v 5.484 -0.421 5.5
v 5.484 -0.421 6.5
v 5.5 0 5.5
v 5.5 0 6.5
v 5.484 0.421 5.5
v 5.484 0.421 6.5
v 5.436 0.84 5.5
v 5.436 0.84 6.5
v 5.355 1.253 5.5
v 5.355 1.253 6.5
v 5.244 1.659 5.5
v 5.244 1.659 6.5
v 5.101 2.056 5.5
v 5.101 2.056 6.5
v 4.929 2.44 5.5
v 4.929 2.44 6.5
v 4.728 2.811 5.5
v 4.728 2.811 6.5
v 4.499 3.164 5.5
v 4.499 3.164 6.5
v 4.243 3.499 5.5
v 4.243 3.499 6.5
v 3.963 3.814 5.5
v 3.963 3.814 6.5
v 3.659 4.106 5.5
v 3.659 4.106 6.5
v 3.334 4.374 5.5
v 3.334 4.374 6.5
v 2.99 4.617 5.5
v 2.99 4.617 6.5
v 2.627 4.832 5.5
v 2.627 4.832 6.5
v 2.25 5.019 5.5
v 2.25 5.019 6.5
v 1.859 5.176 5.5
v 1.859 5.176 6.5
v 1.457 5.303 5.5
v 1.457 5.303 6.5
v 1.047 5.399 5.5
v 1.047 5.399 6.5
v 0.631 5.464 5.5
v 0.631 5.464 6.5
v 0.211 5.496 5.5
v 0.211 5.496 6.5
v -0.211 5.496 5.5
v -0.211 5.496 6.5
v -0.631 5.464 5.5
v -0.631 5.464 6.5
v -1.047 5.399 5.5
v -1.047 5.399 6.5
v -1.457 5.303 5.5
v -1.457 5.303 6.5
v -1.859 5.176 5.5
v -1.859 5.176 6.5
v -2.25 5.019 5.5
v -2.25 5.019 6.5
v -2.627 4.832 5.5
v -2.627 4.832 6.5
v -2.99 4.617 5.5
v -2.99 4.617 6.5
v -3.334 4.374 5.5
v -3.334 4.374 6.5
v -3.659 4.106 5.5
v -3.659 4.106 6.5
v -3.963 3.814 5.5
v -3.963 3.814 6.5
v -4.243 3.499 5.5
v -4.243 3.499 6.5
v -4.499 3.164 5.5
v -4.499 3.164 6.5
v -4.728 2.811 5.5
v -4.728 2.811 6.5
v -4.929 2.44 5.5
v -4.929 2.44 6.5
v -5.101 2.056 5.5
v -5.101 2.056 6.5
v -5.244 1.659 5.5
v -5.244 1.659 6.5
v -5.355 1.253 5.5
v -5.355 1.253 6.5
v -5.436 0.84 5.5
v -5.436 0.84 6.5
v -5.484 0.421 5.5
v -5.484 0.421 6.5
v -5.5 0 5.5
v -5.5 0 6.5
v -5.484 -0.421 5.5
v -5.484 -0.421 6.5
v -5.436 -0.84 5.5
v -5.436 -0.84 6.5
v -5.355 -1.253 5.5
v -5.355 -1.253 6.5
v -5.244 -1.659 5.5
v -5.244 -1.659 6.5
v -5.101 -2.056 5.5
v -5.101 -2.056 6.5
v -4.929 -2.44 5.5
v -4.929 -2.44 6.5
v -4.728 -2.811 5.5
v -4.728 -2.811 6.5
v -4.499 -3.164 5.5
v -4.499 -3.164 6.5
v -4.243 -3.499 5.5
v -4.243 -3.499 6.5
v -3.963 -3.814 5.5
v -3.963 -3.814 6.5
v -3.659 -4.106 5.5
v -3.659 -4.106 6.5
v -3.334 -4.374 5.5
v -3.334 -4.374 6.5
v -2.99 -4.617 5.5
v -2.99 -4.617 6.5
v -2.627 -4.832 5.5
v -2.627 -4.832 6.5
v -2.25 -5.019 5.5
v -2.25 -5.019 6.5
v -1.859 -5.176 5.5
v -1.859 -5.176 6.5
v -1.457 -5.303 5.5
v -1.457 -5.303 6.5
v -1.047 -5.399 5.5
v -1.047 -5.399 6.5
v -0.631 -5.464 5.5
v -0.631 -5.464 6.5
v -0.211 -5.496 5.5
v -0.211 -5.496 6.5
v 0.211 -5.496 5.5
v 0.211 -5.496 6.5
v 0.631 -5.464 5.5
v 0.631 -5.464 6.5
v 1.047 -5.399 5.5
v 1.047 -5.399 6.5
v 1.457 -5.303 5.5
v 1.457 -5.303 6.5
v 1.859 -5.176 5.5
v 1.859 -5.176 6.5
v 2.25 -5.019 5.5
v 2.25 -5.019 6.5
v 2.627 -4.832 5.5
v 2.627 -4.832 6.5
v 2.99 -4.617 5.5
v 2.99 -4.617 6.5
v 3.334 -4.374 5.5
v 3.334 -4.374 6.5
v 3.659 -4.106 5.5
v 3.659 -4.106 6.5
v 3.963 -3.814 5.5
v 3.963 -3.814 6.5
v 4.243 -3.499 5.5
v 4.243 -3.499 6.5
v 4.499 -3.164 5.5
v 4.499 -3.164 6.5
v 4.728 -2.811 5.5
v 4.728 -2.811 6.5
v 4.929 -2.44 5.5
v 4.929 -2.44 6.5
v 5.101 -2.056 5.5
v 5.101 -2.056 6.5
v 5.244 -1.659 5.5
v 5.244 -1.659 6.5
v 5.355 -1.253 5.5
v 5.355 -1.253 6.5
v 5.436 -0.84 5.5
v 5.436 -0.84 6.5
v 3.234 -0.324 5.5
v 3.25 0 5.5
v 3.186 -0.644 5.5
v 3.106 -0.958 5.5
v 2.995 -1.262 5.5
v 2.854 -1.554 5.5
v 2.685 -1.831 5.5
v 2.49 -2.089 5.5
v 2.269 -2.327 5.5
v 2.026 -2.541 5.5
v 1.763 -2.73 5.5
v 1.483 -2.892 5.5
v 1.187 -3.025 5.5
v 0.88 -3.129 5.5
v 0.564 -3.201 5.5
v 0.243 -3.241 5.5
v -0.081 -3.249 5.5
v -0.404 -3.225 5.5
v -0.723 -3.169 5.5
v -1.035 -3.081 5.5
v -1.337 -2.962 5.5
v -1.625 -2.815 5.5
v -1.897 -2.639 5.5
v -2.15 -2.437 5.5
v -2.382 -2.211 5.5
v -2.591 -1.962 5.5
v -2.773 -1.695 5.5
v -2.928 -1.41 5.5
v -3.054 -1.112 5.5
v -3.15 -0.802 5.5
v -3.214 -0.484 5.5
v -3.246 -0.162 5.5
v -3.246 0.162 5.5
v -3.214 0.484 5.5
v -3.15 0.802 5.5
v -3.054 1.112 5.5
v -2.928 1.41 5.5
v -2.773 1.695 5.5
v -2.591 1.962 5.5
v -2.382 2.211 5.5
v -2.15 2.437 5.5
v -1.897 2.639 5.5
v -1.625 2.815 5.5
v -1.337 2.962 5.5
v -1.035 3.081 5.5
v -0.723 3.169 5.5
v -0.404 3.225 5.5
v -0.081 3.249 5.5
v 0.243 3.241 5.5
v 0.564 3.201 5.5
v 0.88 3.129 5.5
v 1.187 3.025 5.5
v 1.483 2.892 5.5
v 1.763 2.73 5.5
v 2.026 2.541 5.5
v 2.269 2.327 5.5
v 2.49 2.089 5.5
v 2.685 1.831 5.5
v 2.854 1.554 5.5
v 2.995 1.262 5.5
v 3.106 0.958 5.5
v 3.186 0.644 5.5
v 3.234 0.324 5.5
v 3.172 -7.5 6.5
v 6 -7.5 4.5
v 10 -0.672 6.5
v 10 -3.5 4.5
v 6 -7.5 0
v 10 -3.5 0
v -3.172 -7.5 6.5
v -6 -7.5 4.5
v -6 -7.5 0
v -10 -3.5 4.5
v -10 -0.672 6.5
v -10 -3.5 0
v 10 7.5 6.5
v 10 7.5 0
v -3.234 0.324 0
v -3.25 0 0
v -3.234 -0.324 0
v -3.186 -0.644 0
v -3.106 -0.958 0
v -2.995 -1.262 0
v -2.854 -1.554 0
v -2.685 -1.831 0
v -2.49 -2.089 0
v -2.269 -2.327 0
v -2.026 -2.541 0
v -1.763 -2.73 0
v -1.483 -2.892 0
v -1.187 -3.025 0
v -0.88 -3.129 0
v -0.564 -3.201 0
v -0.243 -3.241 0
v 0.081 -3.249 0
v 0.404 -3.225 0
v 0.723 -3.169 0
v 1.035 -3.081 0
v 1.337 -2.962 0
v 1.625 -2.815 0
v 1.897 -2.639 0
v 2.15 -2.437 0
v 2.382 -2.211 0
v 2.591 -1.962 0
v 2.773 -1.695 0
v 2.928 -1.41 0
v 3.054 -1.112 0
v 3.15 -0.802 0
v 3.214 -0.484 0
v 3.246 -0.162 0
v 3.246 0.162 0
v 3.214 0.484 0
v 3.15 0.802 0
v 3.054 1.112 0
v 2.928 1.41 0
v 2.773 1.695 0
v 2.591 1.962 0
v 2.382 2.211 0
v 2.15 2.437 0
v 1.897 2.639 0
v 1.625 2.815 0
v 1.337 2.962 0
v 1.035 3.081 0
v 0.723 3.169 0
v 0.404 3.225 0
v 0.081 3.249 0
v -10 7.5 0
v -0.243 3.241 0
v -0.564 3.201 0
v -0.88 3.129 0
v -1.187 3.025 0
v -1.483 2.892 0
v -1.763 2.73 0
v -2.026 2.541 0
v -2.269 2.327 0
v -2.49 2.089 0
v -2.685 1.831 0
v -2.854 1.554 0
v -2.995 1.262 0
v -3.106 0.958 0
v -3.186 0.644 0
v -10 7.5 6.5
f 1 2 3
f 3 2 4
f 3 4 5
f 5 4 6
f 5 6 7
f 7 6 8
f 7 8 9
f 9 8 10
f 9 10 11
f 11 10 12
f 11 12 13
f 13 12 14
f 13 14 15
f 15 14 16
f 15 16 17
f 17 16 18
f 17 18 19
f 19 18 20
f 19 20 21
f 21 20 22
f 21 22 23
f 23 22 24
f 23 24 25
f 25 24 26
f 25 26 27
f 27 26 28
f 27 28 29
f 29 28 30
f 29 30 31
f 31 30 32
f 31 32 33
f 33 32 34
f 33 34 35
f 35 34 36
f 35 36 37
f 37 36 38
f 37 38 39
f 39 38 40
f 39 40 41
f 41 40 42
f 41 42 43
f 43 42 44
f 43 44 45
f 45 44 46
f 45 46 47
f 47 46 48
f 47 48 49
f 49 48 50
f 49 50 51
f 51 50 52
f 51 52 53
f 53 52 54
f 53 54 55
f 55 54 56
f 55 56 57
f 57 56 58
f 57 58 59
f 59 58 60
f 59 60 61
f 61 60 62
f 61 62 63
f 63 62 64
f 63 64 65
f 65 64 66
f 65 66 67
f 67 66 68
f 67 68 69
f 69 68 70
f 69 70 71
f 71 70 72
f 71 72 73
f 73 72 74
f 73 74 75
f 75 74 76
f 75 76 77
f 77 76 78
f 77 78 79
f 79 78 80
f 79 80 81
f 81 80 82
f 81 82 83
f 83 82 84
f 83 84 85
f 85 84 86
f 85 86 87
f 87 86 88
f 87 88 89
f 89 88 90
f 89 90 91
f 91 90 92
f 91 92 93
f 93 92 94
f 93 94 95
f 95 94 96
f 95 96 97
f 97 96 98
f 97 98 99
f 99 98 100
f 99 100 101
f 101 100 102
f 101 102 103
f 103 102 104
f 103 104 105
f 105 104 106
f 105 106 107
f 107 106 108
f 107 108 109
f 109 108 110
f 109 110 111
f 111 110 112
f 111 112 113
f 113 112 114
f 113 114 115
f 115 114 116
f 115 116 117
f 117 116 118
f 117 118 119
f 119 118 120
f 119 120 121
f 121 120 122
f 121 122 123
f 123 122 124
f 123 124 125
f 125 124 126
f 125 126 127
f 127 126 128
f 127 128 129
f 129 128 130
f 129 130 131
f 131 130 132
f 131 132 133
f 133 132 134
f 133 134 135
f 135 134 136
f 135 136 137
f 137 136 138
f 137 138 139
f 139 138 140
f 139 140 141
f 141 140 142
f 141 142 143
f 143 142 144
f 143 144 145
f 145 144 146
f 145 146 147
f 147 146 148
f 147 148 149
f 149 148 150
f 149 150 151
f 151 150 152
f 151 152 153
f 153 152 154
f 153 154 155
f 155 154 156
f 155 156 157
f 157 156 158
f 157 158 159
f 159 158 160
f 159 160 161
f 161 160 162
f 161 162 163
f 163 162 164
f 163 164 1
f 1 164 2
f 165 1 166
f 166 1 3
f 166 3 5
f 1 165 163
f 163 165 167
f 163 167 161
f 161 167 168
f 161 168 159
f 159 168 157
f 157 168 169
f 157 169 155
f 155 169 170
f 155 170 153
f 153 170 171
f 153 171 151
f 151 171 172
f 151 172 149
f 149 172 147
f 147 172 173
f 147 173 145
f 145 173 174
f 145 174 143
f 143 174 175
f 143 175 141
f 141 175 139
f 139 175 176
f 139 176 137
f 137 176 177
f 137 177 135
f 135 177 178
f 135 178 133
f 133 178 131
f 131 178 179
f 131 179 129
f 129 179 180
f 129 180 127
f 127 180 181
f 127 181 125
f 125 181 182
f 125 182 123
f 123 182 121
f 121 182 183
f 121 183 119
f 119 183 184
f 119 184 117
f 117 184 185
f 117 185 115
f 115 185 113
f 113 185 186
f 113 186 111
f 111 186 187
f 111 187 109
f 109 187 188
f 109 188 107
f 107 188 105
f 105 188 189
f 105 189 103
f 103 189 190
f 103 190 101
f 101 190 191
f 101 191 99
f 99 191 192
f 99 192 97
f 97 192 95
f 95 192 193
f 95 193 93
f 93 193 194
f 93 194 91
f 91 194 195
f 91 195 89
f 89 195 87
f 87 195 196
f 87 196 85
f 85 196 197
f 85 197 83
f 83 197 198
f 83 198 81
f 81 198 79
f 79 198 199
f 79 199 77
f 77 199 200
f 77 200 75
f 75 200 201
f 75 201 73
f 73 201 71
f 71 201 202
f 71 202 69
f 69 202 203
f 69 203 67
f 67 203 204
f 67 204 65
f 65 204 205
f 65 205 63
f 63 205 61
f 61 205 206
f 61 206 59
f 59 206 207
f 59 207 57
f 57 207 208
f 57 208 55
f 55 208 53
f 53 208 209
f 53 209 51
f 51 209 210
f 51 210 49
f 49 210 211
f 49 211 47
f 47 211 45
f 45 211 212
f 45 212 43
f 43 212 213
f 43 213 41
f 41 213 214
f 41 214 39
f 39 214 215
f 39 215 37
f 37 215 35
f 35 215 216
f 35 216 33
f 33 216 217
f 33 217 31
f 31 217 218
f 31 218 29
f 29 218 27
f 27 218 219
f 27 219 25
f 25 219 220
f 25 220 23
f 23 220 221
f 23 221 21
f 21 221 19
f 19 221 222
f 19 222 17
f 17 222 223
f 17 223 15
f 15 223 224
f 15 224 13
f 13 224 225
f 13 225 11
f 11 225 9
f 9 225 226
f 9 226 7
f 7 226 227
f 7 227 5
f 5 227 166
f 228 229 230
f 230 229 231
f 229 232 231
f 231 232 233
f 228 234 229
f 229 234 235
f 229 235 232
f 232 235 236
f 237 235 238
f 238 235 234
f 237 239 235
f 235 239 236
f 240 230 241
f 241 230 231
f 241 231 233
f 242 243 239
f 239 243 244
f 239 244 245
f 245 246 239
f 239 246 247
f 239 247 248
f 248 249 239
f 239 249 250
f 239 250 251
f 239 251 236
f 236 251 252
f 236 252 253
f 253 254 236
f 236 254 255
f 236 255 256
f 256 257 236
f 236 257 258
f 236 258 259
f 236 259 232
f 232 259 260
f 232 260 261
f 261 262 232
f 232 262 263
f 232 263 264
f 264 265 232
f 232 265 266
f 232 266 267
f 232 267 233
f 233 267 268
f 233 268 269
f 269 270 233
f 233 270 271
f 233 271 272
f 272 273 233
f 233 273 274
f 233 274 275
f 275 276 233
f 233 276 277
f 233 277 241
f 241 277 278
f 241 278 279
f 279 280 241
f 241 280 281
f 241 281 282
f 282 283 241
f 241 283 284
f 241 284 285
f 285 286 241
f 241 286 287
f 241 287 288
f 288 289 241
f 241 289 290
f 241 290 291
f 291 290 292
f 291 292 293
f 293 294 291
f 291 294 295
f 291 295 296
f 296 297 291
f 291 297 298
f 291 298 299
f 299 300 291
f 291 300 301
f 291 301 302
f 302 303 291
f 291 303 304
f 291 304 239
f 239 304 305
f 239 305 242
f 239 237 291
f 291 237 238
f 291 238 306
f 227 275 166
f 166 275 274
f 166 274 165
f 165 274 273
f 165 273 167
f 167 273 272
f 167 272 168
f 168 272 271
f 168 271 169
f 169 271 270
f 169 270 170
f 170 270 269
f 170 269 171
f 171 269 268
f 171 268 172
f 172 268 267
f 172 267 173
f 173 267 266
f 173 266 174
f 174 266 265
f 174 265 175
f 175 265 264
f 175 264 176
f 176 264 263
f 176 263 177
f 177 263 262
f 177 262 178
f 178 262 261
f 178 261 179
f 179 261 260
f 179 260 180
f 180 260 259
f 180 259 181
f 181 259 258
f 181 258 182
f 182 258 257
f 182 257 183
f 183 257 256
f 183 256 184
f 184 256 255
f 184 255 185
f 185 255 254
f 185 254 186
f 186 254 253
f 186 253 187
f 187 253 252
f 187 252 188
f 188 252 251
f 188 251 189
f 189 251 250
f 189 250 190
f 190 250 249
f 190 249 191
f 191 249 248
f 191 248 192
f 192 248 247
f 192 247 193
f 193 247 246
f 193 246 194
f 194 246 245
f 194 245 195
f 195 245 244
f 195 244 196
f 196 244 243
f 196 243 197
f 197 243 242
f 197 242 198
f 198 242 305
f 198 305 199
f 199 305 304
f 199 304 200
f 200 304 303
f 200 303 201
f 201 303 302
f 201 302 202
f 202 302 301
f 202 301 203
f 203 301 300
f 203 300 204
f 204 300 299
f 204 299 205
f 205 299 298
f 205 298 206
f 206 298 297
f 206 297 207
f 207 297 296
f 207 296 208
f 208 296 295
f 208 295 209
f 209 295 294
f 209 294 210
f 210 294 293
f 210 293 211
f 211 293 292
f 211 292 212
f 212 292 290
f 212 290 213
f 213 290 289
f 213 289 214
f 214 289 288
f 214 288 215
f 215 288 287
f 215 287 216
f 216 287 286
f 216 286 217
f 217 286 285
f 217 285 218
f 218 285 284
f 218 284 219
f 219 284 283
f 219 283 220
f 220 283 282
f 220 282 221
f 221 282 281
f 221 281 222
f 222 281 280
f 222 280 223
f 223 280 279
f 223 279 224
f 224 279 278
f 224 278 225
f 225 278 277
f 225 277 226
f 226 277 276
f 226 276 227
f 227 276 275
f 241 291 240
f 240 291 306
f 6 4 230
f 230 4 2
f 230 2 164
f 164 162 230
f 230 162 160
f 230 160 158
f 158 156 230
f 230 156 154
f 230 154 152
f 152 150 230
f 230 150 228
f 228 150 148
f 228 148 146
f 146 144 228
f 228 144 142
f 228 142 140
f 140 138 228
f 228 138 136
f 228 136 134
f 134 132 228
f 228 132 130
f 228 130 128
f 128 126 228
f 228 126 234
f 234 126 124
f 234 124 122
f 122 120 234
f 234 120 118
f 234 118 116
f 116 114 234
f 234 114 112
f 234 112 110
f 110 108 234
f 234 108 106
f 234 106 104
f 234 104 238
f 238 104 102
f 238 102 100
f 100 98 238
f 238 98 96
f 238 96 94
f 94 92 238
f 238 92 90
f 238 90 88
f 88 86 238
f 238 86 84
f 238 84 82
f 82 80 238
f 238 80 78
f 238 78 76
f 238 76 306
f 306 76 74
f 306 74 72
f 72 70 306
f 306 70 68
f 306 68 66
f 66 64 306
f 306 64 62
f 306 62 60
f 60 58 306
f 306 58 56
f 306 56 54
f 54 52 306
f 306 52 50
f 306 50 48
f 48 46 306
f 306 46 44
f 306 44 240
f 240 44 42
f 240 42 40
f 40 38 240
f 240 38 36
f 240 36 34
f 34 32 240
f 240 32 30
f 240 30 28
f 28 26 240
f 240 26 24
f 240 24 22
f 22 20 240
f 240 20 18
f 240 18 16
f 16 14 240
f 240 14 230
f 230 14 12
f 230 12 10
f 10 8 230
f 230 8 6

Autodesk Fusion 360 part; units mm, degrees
sketch "Sketch1" plane through (0, 0, 0) normal (0, 0, 1) x (1, 0, 0)
  line L0 (10, 7.5) -> (-10, 7.5)
  line L1 (-10, 7.5) -> (-10, -7.5)
  line L2 (-10, -7.5) -> (10, -7.5)
  line L3 (10, -7.5) -> (10, 7.5)
  line L4 (10, 7.5) -> (-10, -7.5) construction
  line L5 (-10, 7.5) -> (10, -7.5) construction
  circle A0 centre (0, 0) radius 3.25
  dimension "d1" = 20
  dimension "d2" = 15
  dimension "d3" = 6.5
extrude "Extrude1" add sketch "Sketch1" along normal blind 6.5
chamfer "Chamfer1" distance 4 distance2 4 2 edges at (-10, -7.5, 3.25) (10, -7.5, 3.25) measured on face at (-10, 2.5, 2.1667) measured on face at (-3.3333, -7.5, 4.3333)
chamfer "Chamfer2" distance 2 distance2 2 2 edges at (-8, -5.5, 6.5) (8, -5.5, 6.5) measured on face at (-7.3333, -6.1667, 2.1667) measured on face at (8.6667, -4.8333, 2.1667)
sketch "Sketch2" plane through (0, 0, 6.5) normal (0, 0, 1) x (-1, 0, 0)
  line L0 (-3.1716, 7.5) -> (-10, 0.6716)
  line L1 (-10, 0.6716) -> (-10, -7.5)
  line L2 (-10, -7.5) -> (10, -7.5)
  line L3 (10, -7.5) -> (10, 0.6716)
  line L4 (10, 0.6716) -> (3.1716, 7.5)
  line L5 (3.1716, 7.5) -> (-3.1716, 7.5)
  circle A0 centre (0, 0) radius 3.25
  circle A1 centre (0, 0) radius 5.5
  dimension "d10" = 11
extrude "Extrude2" cut sketch "Sketch2" against normal blind 1 contours A1
